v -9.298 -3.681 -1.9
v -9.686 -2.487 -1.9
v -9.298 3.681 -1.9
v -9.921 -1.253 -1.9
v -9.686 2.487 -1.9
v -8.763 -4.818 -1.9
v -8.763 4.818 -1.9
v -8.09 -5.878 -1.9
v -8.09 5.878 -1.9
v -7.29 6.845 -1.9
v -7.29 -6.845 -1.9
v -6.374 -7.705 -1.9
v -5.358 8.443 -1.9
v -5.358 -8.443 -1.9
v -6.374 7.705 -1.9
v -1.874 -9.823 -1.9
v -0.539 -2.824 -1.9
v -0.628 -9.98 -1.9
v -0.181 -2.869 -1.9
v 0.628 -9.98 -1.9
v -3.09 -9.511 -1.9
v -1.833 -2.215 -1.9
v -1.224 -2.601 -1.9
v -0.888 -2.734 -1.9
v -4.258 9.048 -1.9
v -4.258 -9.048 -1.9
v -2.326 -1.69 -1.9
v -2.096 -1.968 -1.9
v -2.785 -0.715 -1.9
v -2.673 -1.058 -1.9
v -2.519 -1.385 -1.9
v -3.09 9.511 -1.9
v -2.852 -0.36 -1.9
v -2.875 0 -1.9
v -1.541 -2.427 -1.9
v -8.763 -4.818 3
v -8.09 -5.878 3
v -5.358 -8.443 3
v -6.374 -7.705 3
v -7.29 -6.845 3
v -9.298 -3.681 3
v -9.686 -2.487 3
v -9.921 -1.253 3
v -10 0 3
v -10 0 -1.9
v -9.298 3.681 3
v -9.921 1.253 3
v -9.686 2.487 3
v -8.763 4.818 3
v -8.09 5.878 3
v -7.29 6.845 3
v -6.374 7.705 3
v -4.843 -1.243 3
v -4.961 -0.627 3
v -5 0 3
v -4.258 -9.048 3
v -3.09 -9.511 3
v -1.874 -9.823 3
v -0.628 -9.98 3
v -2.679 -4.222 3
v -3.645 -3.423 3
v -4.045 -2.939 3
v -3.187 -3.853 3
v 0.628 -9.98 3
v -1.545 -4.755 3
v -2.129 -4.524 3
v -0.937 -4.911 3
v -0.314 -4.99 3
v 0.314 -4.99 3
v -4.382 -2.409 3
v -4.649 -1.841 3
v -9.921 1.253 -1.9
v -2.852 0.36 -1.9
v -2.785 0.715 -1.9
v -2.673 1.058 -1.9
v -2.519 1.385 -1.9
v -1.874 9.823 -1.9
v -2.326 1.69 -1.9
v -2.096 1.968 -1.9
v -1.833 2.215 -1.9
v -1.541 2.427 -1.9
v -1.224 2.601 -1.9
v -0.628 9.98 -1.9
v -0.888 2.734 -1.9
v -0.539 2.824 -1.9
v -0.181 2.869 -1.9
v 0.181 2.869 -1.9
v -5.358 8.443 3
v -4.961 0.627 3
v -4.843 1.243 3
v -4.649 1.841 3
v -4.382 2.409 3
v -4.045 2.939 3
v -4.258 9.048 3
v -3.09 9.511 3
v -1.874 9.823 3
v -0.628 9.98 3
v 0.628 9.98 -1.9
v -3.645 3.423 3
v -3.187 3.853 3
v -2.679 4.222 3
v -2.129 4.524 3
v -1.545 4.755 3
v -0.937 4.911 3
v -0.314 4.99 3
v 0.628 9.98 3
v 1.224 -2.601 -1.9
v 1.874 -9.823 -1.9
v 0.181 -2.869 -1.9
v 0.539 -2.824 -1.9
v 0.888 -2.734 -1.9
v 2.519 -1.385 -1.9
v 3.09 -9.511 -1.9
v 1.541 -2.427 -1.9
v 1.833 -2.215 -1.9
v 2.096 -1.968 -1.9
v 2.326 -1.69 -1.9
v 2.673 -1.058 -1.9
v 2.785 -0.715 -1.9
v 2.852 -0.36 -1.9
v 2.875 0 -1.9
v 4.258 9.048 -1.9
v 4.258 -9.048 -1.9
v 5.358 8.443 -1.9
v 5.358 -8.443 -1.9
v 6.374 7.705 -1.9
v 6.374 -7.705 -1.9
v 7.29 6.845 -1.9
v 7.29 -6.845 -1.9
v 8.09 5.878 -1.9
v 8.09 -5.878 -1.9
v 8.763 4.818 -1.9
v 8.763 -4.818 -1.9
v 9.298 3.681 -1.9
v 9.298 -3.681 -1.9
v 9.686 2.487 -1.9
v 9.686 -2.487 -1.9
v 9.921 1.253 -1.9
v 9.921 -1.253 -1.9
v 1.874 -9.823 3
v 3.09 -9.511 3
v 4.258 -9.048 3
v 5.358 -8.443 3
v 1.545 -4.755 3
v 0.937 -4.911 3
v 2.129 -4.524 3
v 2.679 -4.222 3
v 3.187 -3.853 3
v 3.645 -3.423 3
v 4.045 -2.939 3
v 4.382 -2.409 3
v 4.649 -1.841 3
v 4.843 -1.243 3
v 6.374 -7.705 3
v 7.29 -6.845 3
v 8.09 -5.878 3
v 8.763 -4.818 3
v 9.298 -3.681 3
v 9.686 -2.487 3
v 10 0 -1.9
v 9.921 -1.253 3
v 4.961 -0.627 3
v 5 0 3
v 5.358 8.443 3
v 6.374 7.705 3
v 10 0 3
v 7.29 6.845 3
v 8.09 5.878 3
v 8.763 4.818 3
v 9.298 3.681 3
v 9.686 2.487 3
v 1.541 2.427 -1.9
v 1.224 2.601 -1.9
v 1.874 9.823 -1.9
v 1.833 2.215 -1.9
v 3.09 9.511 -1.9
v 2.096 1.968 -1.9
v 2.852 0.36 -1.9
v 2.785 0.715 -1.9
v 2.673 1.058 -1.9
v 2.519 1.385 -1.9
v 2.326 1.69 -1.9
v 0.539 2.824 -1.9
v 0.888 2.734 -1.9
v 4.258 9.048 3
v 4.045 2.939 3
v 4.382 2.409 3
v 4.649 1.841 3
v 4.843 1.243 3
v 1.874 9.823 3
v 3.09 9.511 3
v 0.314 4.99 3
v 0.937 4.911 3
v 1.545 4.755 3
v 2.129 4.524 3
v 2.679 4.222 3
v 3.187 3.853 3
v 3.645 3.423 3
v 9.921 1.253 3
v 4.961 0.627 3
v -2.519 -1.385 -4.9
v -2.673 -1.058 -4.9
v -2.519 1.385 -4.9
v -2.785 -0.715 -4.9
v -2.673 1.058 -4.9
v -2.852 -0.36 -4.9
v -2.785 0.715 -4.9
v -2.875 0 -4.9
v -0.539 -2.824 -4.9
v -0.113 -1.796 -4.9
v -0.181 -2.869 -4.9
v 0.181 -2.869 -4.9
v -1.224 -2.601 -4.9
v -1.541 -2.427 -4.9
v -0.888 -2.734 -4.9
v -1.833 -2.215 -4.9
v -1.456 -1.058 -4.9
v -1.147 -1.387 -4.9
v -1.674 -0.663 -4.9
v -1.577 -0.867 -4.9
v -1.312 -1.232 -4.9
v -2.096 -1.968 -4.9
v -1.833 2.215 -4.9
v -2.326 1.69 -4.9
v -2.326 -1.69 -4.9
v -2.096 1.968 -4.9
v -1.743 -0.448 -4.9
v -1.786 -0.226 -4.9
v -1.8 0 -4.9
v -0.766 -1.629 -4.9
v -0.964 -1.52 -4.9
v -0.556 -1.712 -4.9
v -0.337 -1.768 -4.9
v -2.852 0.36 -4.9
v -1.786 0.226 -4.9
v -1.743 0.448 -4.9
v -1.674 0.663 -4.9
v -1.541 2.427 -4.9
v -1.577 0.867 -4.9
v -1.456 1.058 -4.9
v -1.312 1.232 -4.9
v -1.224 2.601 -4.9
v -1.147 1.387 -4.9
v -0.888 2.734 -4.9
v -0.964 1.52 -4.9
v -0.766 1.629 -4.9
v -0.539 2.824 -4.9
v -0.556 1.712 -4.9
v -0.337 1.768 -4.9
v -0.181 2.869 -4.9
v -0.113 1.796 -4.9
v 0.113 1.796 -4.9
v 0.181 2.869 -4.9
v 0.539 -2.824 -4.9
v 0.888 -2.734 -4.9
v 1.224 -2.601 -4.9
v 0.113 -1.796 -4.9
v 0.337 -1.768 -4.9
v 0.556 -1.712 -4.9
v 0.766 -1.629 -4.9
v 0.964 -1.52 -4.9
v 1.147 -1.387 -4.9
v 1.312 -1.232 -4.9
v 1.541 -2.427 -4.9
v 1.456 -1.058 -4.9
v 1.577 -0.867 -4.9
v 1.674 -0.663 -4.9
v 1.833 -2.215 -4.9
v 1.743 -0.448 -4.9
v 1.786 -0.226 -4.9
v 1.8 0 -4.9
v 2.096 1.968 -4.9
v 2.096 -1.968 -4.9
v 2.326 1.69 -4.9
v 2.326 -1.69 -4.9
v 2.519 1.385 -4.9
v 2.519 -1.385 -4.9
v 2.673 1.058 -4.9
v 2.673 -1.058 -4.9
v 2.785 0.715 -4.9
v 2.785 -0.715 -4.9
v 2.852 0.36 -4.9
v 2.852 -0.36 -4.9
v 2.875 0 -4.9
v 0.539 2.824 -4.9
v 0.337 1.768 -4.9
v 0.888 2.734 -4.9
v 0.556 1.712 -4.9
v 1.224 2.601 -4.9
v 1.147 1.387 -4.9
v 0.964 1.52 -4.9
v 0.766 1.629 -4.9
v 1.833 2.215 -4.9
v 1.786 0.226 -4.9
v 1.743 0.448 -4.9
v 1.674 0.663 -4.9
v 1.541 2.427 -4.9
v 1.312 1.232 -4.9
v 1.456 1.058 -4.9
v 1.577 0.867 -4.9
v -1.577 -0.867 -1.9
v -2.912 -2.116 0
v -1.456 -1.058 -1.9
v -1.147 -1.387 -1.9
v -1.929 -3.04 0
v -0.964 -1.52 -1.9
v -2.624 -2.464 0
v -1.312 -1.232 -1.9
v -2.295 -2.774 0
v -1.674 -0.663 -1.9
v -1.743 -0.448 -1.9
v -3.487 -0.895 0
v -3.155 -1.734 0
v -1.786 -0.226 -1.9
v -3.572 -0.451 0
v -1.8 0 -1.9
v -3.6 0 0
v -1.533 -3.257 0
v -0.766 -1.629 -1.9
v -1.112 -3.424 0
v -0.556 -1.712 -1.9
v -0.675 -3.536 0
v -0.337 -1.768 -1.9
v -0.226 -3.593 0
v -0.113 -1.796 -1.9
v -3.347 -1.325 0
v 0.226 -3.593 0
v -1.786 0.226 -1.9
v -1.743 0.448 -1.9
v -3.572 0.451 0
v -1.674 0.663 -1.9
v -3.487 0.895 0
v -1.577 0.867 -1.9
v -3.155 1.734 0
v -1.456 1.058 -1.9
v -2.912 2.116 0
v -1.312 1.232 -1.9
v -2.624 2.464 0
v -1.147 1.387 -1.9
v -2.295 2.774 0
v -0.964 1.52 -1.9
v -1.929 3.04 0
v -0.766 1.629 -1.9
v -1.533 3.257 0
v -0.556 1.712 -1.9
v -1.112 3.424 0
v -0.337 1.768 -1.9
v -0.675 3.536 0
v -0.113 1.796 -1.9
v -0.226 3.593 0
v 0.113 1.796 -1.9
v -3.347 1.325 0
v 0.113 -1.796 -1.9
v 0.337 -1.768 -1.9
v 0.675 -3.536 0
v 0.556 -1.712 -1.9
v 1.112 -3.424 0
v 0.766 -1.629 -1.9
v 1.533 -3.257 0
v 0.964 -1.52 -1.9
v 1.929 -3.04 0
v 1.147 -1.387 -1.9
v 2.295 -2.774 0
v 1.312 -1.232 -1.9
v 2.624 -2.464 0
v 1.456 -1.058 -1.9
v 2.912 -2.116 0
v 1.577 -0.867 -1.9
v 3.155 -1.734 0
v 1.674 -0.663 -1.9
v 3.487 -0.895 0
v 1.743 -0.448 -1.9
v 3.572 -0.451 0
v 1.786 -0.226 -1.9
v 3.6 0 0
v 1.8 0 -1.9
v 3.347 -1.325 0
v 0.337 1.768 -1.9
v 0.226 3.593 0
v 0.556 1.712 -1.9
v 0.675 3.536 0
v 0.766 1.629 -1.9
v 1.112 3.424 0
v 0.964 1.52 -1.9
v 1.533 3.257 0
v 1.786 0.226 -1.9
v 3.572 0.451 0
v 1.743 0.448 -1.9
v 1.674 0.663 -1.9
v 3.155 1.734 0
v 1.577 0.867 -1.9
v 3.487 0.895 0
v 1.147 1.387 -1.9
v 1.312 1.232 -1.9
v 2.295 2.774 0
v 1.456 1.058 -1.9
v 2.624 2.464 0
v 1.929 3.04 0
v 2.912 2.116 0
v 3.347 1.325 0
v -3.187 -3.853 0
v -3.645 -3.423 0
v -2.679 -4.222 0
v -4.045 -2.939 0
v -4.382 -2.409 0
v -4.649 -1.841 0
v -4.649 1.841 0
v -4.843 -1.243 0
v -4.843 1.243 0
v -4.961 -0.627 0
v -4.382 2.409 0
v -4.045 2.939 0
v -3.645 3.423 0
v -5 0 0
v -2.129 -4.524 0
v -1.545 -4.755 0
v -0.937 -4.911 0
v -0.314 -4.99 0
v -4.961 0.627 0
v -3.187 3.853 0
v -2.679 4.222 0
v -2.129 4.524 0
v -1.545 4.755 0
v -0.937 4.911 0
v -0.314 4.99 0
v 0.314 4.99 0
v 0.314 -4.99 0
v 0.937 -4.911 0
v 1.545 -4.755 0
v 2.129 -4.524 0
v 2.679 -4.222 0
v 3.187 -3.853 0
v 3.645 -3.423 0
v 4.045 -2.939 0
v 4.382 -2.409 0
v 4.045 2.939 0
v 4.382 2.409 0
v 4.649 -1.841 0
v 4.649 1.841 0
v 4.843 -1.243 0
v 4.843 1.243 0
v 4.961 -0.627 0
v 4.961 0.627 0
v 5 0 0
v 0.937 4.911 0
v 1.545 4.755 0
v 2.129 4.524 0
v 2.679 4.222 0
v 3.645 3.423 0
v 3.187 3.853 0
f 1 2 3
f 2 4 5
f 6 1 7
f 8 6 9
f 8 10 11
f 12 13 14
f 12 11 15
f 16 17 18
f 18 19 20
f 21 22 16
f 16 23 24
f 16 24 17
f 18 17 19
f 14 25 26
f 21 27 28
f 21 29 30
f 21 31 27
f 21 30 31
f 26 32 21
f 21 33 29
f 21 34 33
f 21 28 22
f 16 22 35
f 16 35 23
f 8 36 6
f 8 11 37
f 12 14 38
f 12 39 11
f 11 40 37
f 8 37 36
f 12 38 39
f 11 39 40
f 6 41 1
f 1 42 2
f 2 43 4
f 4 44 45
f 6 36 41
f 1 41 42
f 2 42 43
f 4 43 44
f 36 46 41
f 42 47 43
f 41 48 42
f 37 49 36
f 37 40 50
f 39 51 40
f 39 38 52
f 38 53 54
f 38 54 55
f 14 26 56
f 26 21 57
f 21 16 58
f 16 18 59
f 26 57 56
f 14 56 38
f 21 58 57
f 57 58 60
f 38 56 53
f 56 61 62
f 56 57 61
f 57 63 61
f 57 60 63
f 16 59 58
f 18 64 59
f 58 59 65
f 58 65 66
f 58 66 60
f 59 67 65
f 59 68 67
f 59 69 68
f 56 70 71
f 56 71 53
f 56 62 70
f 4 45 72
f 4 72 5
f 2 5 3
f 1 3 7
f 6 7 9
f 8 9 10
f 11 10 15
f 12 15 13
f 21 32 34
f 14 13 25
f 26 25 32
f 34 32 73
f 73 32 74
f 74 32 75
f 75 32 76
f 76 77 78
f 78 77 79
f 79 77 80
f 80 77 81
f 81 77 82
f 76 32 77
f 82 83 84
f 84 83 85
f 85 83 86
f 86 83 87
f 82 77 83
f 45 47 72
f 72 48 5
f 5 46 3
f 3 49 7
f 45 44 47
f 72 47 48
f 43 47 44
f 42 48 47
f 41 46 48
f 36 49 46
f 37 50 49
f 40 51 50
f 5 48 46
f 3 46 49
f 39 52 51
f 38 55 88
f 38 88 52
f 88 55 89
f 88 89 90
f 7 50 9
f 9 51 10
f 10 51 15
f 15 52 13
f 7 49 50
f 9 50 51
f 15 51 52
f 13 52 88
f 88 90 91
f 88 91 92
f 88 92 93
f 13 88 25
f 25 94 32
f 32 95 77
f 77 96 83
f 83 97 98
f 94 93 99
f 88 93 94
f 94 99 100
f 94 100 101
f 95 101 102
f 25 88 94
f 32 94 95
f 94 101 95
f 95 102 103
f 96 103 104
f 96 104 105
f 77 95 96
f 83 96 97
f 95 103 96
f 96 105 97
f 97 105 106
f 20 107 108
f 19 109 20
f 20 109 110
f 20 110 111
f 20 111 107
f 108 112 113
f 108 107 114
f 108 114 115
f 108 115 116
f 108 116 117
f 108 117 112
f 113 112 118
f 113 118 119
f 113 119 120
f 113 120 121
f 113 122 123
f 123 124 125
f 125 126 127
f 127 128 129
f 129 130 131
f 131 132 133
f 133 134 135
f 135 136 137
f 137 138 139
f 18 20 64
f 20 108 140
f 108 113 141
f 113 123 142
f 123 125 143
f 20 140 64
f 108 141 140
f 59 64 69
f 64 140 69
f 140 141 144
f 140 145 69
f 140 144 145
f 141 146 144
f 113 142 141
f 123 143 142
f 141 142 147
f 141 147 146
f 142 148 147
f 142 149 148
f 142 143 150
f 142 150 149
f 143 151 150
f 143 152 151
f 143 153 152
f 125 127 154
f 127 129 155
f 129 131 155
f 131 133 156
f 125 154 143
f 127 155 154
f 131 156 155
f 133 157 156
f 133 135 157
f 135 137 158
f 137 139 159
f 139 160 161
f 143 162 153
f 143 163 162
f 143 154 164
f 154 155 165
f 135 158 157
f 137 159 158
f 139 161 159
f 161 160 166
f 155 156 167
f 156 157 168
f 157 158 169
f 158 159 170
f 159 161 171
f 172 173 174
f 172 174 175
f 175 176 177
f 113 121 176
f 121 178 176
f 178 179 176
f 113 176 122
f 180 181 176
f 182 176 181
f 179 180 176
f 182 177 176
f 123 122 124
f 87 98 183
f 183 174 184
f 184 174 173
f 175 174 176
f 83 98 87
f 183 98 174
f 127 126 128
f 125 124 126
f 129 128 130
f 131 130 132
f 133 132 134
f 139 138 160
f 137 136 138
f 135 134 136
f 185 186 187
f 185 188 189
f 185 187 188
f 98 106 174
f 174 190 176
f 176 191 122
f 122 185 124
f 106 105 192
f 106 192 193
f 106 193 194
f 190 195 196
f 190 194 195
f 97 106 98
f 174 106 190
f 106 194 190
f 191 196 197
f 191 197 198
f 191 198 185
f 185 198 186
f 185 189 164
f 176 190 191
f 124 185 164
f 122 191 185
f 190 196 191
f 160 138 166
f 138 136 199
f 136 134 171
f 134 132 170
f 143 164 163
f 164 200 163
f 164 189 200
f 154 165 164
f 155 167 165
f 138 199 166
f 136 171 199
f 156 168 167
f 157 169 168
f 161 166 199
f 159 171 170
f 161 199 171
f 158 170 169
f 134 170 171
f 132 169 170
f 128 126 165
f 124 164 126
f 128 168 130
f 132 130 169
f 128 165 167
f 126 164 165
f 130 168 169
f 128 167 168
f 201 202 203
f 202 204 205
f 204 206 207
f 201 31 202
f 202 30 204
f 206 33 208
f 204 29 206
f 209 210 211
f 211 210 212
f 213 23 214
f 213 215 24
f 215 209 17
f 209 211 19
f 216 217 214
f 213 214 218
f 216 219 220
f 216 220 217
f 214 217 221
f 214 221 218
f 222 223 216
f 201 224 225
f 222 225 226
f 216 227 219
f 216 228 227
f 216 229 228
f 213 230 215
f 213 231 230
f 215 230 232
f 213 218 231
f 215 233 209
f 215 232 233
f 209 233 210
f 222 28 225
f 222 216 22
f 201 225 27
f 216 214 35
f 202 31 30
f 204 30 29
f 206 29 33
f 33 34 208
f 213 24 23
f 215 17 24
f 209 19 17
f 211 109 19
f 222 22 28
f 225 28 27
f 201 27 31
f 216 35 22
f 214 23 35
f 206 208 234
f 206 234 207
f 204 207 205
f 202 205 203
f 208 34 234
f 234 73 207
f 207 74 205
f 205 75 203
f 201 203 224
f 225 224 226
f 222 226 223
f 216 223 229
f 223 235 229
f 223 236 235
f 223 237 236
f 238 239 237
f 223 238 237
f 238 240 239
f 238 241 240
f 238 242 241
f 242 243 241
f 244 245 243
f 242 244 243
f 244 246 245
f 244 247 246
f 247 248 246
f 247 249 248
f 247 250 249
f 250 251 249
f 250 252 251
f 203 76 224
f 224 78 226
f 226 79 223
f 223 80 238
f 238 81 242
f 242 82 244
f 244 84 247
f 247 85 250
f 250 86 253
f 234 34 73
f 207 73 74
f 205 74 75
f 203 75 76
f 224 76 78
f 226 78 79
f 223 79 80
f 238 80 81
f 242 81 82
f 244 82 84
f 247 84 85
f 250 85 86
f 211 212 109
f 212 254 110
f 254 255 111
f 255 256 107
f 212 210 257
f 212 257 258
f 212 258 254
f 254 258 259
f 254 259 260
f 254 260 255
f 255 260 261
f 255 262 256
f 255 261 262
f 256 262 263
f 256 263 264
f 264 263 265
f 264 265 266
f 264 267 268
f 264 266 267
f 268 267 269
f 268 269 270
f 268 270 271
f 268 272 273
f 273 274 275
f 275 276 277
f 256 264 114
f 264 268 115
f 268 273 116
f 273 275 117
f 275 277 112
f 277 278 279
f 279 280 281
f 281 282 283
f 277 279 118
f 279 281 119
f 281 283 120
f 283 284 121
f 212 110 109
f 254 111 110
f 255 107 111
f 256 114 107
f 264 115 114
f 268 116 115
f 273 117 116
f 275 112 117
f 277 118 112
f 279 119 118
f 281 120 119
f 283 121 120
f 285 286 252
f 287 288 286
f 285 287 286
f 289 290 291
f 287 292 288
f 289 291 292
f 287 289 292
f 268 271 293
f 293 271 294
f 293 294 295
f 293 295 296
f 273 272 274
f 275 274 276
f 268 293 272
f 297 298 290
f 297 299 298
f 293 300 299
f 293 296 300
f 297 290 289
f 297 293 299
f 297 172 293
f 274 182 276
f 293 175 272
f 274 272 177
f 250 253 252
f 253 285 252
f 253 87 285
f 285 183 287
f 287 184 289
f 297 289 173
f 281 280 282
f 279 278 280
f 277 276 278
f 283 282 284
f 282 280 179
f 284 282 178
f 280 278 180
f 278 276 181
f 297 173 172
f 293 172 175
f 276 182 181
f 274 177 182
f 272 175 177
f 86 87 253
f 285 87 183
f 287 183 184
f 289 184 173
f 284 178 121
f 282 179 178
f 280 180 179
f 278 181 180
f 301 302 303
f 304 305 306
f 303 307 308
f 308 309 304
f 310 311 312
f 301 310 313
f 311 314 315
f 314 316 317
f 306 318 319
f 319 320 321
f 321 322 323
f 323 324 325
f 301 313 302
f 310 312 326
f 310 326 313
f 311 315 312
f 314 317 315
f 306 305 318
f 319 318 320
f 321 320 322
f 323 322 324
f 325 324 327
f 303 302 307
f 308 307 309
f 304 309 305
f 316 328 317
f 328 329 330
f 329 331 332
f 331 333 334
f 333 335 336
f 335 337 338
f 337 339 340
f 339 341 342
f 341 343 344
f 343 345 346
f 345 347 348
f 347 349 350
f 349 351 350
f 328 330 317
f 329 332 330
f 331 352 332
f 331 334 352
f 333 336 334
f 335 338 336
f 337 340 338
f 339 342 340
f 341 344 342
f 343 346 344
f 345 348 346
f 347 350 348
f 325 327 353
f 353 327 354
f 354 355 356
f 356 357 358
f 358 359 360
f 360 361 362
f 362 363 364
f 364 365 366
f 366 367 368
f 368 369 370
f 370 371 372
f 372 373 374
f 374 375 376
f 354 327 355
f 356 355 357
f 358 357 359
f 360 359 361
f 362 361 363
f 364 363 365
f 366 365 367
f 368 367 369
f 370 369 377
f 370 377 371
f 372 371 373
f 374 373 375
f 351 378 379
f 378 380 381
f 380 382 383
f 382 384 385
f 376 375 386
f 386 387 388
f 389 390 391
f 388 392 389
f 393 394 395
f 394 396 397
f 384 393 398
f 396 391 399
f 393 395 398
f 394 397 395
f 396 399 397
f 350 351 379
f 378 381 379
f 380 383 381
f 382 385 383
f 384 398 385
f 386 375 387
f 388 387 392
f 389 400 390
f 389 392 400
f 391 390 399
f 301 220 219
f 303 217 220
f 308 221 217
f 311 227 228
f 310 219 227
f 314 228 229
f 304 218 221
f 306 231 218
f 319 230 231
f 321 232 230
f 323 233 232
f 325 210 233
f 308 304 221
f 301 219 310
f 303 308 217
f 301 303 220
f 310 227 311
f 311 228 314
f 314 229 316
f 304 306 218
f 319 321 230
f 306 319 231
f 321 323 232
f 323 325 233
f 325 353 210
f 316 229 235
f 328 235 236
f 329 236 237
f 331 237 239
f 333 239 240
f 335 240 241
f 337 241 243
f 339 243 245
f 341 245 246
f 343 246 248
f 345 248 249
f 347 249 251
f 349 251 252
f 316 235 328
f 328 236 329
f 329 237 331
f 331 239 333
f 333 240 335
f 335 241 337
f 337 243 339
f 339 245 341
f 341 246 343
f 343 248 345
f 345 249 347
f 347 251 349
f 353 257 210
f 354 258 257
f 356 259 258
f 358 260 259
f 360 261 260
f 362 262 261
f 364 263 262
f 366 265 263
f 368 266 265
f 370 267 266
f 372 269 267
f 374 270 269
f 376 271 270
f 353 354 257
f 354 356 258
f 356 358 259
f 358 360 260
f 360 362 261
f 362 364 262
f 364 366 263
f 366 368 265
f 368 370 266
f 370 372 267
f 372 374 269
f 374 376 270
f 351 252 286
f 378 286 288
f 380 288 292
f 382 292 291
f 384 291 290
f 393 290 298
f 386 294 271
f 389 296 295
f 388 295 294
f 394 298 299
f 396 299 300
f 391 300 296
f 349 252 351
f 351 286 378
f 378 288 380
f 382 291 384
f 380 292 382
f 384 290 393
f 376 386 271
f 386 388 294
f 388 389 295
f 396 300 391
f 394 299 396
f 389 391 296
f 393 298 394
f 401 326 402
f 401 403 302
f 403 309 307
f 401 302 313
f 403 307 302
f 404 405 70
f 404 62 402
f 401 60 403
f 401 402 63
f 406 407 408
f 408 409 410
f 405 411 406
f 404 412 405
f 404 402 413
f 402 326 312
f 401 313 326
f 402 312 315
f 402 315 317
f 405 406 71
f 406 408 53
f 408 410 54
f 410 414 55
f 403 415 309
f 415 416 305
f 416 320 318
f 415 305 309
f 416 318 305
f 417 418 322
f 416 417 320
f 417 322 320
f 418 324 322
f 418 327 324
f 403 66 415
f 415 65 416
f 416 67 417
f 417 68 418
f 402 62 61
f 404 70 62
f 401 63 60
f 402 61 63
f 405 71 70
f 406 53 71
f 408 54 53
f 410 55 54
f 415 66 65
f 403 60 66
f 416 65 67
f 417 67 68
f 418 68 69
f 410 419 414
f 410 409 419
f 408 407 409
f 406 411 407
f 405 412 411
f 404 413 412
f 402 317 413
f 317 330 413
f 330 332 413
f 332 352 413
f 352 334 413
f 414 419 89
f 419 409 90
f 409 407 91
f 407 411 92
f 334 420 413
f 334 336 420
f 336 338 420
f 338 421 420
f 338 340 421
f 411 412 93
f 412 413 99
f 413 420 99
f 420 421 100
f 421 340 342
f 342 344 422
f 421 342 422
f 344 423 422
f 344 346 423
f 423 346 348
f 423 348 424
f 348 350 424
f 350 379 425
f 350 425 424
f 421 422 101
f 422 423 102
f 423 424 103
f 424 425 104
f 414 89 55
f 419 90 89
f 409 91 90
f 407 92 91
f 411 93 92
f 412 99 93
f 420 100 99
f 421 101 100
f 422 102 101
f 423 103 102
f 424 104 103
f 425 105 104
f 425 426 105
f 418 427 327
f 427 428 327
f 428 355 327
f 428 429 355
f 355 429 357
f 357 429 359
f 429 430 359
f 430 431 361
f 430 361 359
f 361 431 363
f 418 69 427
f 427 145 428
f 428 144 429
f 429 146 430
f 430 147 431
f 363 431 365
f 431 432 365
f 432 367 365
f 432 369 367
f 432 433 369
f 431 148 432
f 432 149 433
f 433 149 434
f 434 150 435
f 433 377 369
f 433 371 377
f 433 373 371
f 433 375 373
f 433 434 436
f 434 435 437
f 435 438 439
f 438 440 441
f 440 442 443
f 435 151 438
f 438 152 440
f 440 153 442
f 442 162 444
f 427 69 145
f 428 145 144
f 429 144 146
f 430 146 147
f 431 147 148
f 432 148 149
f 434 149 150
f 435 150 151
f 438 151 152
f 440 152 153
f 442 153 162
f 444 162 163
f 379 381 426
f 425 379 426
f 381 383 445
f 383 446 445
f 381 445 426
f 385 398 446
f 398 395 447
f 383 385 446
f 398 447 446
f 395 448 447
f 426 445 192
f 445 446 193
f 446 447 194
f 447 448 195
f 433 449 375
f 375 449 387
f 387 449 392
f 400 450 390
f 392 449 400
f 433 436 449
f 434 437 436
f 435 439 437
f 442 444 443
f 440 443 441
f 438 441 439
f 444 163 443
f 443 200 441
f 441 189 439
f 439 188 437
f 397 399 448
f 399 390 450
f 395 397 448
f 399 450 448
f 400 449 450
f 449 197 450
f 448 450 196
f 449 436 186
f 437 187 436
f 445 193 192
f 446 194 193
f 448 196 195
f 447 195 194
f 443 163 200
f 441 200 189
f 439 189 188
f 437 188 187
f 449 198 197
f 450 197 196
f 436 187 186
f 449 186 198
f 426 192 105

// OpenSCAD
$fn = 50;


difference() {
	union() {
		translate(v = [0, 0, -1.9000000000]) {
			cylinder(h = 4.9000000000, r = 10.0000000000);
		}
		#translate(v = [0, 0, -4.9000000000]) {
			cylinder(h = 4.9000000000, r = 2.8750000000);
		}
	}
	union() {
		translate(v = [0, 0, 0]) {
			rotate(a = [0, 0, 0]) {
				difference() {
					union() {
						translate(v = [0, 0, -4.9000000000]) {
							cylinder(h = 4.9000000000, r = 1.5000000000);
						}
						translate(v = [0, 0, -1.9000000000]) {
							cylinder(h = 1.9000000000, r1 = 1.8000000000, r2 = 3.6000000000);
						}
						translate(v = [0, 0, -4.9000000000]) {
							cylinder(h = 4.9000000000, r = 1.8000000000);
						}
						translate(v = [0, 0, -4.9000000000]) {
							cylinder(h = 4.9000000000, r = 1.5000000000);
						}
					}
					union();
				}
			}
		}
		#cylinder(h = 3, r = 5.0000000000);
	}
}
